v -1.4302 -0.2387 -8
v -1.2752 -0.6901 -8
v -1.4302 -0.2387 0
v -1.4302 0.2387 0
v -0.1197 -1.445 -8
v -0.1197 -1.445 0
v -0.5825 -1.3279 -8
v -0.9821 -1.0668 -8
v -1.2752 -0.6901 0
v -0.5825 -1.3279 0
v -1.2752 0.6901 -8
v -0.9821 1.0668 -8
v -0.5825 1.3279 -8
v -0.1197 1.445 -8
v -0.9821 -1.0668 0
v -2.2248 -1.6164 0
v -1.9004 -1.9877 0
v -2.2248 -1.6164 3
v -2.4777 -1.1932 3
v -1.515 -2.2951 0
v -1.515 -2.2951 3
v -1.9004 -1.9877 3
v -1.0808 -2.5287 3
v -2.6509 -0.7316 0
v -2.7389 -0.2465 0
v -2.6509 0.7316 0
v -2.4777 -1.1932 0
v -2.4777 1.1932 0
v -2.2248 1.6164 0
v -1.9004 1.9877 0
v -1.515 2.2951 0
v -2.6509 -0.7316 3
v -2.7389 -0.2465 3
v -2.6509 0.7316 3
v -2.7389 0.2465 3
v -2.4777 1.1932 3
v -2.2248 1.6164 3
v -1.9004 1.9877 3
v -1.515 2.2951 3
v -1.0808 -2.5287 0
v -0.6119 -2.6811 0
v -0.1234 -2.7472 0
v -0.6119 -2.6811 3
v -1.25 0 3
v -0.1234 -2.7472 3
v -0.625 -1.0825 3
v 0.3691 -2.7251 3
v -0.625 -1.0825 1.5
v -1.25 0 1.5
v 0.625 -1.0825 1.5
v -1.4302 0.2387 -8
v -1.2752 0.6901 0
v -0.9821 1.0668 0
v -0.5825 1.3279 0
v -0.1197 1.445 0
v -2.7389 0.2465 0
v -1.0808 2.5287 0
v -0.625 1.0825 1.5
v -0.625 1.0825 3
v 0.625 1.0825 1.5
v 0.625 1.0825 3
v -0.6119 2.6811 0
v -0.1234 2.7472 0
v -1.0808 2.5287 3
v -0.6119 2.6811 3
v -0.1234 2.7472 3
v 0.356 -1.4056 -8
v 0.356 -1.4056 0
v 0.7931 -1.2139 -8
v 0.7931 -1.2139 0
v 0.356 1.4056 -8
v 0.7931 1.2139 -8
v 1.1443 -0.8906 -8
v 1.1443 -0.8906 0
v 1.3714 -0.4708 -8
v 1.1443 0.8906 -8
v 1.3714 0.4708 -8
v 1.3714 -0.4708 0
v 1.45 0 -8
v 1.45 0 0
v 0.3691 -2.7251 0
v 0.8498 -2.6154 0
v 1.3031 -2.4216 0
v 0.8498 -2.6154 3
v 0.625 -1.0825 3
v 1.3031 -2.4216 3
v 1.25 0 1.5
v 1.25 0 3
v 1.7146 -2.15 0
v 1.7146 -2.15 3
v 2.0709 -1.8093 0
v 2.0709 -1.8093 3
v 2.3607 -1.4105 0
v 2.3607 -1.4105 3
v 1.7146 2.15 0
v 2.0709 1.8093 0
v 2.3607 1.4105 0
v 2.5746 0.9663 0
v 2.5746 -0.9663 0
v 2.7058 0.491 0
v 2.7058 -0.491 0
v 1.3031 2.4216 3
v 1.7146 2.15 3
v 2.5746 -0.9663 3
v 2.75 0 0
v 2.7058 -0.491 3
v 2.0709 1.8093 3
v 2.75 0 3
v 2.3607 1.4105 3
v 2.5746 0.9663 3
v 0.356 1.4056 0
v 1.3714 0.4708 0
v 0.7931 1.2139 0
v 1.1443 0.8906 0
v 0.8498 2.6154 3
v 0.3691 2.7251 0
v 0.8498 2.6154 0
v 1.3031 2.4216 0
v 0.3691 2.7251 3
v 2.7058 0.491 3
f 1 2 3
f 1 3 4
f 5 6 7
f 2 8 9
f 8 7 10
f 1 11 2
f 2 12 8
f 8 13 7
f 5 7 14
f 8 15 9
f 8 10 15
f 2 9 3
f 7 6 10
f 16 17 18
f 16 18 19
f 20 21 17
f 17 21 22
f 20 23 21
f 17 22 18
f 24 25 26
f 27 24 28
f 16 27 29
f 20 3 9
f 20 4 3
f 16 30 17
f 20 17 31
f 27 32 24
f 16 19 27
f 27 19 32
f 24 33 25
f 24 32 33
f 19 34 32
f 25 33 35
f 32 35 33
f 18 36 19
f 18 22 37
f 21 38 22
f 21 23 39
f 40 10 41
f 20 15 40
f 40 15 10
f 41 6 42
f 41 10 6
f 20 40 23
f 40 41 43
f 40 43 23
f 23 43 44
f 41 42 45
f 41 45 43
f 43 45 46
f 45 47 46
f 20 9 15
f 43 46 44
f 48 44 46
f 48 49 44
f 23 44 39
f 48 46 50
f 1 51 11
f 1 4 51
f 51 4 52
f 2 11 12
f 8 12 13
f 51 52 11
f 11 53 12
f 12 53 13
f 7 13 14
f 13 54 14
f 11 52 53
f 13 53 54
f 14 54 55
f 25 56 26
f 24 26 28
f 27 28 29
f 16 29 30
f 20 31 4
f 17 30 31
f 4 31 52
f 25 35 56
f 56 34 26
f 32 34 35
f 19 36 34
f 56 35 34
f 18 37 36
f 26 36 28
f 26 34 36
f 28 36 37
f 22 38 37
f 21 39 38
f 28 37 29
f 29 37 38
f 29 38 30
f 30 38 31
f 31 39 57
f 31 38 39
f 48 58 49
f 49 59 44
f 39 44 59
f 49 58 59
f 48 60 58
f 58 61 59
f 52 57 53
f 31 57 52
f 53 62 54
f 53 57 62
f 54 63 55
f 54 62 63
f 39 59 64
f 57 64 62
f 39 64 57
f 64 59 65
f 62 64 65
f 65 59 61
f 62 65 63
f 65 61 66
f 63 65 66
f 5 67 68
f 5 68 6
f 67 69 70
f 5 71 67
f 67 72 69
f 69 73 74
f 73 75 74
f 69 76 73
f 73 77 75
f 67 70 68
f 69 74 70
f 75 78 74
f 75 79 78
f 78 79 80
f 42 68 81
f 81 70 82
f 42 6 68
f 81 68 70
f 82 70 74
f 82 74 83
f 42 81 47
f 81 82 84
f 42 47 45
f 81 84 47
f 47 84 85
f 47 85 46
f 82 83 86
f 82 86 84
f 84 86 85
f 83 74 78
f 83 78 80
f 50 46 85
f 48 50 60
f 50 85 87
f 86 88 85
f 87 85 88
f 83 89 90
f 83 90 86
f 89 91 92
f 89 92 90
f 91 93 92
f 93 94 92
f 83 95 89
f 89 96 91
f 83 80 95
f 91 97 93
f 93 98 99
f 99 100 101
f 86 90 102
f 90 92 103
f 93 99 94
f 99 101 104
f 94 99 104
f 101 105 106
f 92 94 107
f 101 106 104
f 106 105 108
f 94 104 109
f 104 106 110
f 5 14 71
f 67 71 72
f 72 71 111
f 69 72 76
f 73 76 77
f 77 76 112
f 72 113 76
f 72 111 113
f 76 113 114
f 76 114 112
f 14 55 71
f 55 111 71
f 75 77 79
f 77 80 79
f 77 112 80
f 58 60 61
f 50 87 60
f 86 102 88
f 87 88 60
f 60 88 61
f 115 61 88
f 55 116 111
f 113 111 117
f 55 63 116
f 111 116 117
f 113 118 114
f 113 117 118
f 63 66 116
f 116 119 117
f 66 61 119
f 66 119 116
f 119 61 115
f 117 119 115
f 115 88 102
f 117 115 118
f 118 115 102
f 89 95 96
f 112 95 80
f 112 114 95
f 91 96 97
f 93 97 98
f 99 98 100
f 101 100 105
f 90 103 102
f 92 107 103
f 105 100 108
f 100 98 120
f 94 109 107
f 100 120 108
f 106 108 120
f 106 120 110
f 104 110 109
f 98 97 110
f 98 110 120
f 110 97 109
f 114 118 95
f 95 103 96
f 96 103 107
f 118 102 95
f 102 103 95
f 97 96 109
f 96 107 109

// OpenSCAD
// file: ../lib/lib.scad
// Shared helpers. Include AFTER params.scad (needs TOL, M3_* etc.).
$fa = 4; $fs = 0.5;

module rrect(size, r) {            // 2D rounded rectangle, centred
    r2 = min(r, min(size[0], size[1]) / 2 - 0.001);
    offset(r = r2) square([size[0] - 2 * r2, size[1] - 2 * r2], center = true);
}
module rbox(size, r, center_xy = true) {   // box with rounded vertical edges
    translate(center_xy ? [0, 0, 0] : [size[0] / 2, size[1] / 2, 0])
        linear_extrude(size[2]) rrect([size[0], size[1]], r);
}
module rbox_at(x0, x1, y0, y1, z0, z1, r = 0.01) {
    translate([(x0 + x1) / 2, (y0 + y1) / 2, z0]) rbox([x1 - x0, y1 - y0, z1 - z0], r);
}
module box_at(x0, x1, y0, y1, z0, z1) { translate([x0, y0, z0]) cube([x1 - x0, y1 - y0, z1 - z0]); }

module ring(ro, ri, h) { difference() { cylinder(r = ro, h = h); translate([0, 0, -1]) cylinder(r = ri, h = h + 2); } }
module ring_sector(ro, ri, h, a0, a1) {
    intersection() {
        ring(ro, ri, h);
        linear_extrude(h) polygon(concat([[0, 0]], [for (a = [a0 : (a1 - a0) / 24 : a1]) 2 * ro * [cos(a), sin(a)]]));
    }
}
// teardrop hole along an axis lying horizontal (axis = Y after rotation), printable w/o support
module teardrop2d(d) { union() { circle(d = d); rotate(45) square(d / 2); } }
// vertical heat-set insert hole, opening at z=0 going +z (depth l)
module insert_hole(l = M3_INSERT_L) { translate([0, 0, -EPS]) cylinder(d = M3_INSERT_D, h = l + EPS); }
module m3_clear(l) { translate([0, 0, -EPS]) cylinder(d = M3_CLEAR, h = l + 2 * EPS); }
module m3_csk(l) {  // countersunk clearance from z=0 upward, head at z=0 side
    translate([0, 0, -EPS]) { cylinder(d = M3_CLEAR, h = l + 2 * EPS); cylinder(d1 = 6.4, d2 = M3_CLEAR, h = 1.7); }
}
module card2d() { rrect([CARD_L, CARD_W], CARD_R); }
module card_at(cy, z) { translate([0, cy, z]) linear_extrude(CARD_T) card2d(); }

// ---- gears ----
function _inv(a) = tan(a) - a * PI_ / 180;           // involute function, a in deg
function _invpt(rb, r, ang0, s) = let(al = acos(rb / r), th = ang0 - s * (_inv(al) * 180 / PI_)) [r * cos(th), r * sin(th)];
module involute_gear2d(m, z, pa = 20, clearance = 0.05) {
    rp = m * z / 2; rb = rp * cos(pa); ra = rp + m - clearance; rf = rp - 1.25 * m;
    half = 90 / z + _inv(pa) * 180 / PI_;            // tooth half-angle at base (deg)
    n = 8;
    rs = [for (i = [0 : n]) max(rb, rf) + (ra - max(rb, rf)) * i / n];
    union() {
        circle(r = rf, $fn = z * 4);
        for (k = [0 : z - 1]) rotate(k * 360 / z) polygon(concat(
            [[rf * cos(-half), rf * sin(-half)]],
            [for (r = rs) let(p = _invpt(rb, r, half, 1)) [p[0], -p[1]]],
            [for (i = [n : -1 : 0]) _invpt(rb, rs[i], half, 1)],
            [[rf * cos(half), rf * sin(half)]]));
    }
}
// straight gear rack (2D in XY: teeth along +x, pointing -y, pitch line at y=0)
module gear_rack2d(m, len, back = 3) {
    p = PI_ * m; ad = m; de = 1.25 * m; t = tan(20);
    n = ceil(len / p) + 1;
    intersection() {
        union() {
            translate([0, de]) square([len, back]);
            for (i = [0 : n]) translate([i * p - p / 4, 0]) polygon([
                [-(p / 4 + de * t), de + 0.01], [p / 4 + de * t + 0.01, de + 0.01],
                [p / 4 - ad * t, -ad], [-(p / 4 - ad * t), -ad] ]);
        }
        translate([0, -ad - 1]) square([len, ad + de + back + 2]);
    }
}
// GT2 belt-tooth profile ring (teeth outward), 2D
module gt2_ring2d(n, r_land, ri) {
    union() {
        difference() { circle(r = r_land + 0.01, $fn = n * 2); circle(r = ri, $fn = n * 2); }
        for (k = [0 : n - 1]) rotate(k * 360 / n)
            translate([r_land, 0]) hull() { translate([-0.2, 0]) square([0.2, 1.0], center = true); translate([0.25, 0]) circle(r = 0.5, $fn = 12); }
    }
}
// main file
// Vendor model: M3 socket-head cap screw (representative fastener). Local: head z 0..3 on top of z=0, shank toward -Z.
include <../params.scad>
include <../lib/lib.scad>
module vendor_m3_screw(l = 8) color([0.25,0.25,0.27]) difference() { union() { cylinder(d = 5.5, h = 3); translate([0, 0, -l]) cylinder(d = 2.9, h = l); } translate([0, 0, 1.5]) cylinder(d = 2.5, h = 3, $fn = 6); }

vendor_m3_screw();
